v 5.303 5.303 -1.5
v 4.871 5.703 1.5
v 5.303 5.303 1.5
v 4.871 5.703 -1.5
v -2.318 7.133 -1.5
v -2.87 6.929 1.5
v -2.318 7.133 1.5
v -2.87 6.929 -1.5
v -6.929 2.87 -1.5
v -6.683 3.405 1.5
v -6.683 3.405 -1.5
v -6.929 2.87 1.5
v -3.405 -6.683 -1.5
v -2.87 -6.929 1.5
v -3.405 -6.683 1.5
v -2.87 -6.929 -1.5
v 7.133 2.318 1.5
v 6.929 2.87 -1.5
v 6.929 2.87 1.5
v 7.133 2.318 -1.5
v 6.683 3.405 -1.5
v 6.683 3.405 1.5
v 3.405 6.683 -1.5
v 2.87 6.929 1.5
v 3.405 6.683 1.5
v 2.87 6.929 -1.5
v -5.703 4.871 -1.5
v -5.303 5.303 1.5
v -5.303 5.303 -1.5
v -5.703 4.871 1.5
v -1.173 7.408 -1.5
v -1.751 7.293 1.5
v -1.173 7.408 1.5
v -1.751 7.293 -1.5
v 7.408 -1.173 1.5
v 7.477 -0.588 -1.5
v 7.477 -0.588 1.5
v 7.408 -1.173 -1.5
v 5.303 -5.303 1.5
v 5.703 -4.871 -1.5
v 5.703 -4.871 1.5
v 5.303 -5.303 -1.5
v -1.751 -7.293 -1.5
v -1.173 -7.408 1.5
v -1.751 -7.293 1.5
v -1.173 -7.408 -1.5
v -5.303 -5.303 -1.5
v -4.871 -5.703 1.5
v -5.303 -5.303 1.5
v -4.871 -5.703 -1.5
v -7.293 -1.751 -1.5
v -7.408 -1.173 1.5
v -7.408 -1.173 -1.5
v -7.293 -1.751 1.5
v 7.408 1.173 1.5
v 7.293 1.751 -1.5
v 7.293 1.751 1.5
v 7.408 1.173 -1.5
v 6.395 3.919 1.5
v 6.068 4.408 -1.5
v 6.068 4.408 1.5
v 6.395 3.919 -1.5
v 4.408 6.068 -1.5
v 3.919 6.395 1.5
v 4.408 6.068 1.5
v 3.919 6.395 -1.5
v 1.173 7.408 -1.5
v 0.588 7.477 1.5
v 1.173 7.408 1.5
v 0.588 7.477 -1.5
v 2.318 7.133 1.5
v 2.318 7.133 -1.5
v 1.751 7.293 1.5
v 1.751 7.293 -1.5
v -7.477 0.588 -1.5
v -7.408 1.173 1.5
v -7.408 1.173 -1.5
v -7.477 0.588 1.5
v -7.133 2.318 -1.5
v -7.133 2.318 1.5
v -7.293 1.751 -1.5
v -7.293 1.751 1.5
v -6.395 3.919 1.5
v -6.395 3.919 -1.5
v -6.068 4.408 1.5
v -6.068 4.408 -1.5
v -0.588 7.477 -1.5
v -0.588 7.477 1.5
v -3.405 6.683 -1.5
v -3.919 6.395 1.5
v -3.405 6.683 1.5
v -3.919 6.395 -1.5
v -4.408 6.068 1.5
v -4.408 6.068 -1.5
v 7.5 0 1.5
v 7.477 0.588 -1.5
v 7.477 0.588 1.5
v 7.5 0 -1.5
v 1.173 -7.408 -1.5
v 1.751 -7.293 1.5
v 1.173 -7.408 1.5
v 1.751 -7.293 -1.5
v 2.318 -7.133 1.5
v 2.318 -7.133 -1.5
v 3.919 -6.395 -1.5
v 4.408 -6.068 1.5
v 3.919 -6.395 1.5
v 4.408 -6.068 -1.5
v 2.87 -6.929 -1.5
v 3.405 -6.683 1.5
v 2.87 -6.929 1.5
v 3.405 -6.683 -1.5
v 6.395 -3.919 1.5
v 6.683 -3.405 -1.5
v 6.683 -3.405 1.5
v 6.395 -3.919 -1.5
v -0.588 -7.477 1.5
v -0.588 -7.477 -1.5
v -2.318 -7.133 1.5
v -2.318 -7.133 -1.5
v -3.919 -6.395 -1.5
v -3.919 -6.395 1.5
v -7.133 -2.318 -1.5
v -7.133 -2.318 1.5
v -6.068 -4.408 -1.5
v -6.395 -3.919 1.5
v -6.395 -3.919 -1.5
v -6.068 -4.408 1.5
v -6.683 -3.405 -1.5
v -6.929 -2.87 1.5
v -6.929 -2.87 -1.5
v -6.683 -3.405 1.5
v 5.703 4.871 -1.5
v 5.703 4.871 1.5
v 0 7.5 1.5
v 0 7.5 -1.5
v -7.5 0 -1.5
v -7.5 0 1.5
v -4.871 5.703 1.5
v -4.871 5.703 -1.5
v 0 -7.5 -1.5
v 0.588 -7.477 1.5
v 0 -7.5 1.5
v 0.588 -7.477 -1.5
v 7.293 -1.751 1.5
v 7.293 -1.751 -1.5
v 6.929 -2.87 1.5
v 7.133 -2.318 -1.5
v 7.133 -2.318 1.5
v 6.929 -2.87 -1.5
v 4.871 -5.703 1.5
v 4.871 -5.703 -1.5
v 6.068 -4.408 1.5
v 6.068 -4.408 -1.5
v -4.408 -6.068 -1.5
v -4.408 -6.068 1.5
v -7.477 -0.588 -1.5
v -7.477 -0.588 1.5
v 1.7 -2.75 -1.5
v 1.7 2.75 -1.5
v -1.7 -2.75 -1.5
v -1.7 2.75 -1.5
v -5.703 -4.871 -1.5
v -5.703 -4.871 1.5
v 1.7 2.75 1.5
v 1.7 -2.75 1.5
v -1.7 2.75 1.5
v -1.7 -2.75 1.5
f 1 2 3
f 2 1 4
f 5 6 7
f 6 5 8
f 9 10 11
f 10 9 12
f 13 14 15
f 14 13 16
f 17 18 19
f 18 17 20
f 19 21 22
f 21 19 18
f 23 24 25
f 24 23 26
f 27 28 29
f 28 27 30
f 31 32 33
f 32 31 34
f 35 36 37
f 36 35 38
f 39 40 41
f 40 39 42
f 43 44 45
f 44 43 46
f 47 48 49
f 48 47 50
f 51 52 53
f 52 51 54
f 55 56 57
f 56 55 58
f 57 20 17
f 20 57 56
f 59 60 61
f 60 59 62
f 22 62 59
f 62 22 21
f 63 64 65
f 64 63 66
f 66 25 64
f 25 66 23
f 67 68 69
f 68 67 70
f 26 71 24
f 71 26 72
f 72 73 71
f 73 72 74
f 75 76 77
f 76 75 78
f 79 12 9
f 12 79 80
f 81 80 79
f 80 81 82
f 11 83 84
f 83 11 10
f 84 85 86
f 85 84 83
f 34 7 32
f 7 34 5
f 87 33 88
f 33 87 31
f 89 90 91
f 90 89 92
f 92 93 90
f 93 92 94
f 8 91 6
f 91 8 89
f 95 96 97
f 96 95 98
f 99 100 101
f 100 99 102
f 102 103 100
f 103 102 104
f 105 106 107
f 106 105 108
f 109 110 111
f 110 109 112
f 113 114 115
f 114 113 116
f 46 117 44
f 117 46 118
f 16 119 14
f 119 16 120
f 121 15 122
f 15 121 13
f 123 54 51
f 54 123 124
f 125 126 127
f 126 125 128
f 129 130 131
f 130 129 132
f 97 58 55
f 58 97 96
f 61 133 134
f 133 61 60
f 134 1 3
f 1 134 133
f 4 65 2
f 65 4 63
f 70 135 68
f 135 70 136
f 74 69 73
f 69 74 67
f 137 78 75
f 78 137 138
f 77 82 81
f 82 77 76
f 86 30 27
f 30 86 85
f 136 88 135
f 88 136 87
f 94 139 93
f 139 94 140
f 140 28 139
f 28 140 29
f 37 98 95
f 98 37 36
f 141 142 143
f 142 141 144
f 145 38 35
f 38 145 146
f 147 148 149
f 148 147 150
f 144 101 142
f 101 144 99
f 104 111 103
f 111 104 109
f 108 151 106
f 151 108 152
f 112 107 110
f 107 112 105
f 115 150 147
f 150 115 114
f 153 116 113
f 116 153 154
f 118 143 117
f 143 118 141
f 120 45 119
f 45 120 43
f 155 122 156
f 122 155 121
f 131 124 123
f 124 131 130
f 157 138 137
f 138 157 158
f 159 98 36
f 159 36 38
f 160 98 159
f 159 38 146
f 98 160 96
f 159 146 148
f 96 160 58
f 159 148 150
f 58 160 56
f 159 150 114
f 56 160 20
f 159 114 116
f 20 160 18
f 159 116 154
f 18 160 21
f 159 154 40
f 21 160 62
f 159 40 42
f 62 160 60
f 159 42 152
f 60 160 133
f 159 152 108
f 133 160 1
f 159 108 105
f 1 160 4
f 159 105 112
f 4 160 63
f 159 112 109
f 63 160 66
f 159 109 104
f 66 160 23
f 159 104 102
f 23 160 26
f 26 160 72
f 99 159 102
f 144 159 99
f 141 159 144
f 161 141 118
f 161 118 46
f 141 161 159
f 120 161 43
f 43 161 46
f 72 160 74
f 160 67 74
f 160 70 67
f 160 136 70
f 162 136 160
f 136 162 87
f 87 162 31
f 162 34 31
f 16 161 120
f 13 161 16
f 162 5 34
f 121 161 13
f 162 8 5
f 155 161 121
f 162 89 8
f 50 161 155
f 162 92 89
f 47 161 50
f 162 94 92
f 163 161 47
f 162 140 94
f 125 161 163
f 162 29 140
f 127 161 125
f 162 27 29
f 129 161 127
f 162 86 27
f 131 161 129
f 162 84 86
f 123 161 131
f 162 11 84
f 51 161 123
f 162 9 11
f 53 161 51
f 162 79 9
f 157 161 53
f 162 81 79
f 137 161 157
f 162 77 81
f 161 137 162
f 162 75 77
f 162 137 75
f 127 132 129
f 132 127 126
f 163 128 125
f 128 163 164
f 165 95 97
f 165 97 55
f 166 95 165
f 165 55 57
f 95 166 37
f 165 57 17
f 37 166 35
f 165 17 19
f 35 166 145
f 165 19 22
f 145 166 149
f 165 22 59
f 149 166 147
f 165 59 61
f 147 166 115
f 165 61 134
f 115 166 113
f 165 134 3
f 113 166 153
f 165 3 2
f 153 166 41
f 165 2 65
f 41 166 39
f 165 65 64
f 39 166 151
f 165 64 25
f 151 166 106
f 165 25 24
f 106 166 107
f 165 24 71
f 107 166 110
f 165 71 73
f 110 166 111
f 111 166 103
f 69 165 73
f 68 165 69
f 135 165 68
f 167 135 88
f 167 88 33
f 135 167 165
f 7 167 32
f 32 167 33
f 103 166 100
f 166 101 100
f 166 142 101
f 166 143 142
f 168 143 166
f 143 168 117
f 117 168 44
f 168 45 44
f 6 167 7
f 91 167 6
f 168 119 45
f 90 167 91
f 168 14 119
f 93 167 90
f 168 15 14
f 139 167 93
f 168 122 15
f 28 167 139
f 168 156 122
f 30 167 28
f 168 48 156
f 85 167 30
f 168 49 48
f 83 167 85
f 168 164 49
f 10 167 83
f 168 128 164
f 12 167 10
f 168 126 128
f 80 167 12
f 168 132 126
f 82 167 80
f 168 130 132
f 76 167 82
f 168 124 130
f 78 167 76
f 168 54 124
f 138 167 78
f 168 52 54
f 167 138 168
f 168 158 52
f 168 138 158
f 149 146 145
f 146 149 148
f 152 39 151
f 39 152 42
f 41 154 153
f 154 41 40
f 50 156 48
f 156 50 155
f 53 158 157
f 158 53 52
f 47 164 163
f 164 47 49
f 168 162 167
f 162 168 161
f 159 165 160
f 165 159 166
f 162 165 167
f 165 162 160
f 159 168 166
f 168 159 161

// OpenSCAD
 
 $fn=80; 
  difference() {      
cylinder(h = 3, r1 = 7.5, r2 = 7.5, center = true);   
   
   cube(size = [3.4,5.5,10], center = true);     
 }
